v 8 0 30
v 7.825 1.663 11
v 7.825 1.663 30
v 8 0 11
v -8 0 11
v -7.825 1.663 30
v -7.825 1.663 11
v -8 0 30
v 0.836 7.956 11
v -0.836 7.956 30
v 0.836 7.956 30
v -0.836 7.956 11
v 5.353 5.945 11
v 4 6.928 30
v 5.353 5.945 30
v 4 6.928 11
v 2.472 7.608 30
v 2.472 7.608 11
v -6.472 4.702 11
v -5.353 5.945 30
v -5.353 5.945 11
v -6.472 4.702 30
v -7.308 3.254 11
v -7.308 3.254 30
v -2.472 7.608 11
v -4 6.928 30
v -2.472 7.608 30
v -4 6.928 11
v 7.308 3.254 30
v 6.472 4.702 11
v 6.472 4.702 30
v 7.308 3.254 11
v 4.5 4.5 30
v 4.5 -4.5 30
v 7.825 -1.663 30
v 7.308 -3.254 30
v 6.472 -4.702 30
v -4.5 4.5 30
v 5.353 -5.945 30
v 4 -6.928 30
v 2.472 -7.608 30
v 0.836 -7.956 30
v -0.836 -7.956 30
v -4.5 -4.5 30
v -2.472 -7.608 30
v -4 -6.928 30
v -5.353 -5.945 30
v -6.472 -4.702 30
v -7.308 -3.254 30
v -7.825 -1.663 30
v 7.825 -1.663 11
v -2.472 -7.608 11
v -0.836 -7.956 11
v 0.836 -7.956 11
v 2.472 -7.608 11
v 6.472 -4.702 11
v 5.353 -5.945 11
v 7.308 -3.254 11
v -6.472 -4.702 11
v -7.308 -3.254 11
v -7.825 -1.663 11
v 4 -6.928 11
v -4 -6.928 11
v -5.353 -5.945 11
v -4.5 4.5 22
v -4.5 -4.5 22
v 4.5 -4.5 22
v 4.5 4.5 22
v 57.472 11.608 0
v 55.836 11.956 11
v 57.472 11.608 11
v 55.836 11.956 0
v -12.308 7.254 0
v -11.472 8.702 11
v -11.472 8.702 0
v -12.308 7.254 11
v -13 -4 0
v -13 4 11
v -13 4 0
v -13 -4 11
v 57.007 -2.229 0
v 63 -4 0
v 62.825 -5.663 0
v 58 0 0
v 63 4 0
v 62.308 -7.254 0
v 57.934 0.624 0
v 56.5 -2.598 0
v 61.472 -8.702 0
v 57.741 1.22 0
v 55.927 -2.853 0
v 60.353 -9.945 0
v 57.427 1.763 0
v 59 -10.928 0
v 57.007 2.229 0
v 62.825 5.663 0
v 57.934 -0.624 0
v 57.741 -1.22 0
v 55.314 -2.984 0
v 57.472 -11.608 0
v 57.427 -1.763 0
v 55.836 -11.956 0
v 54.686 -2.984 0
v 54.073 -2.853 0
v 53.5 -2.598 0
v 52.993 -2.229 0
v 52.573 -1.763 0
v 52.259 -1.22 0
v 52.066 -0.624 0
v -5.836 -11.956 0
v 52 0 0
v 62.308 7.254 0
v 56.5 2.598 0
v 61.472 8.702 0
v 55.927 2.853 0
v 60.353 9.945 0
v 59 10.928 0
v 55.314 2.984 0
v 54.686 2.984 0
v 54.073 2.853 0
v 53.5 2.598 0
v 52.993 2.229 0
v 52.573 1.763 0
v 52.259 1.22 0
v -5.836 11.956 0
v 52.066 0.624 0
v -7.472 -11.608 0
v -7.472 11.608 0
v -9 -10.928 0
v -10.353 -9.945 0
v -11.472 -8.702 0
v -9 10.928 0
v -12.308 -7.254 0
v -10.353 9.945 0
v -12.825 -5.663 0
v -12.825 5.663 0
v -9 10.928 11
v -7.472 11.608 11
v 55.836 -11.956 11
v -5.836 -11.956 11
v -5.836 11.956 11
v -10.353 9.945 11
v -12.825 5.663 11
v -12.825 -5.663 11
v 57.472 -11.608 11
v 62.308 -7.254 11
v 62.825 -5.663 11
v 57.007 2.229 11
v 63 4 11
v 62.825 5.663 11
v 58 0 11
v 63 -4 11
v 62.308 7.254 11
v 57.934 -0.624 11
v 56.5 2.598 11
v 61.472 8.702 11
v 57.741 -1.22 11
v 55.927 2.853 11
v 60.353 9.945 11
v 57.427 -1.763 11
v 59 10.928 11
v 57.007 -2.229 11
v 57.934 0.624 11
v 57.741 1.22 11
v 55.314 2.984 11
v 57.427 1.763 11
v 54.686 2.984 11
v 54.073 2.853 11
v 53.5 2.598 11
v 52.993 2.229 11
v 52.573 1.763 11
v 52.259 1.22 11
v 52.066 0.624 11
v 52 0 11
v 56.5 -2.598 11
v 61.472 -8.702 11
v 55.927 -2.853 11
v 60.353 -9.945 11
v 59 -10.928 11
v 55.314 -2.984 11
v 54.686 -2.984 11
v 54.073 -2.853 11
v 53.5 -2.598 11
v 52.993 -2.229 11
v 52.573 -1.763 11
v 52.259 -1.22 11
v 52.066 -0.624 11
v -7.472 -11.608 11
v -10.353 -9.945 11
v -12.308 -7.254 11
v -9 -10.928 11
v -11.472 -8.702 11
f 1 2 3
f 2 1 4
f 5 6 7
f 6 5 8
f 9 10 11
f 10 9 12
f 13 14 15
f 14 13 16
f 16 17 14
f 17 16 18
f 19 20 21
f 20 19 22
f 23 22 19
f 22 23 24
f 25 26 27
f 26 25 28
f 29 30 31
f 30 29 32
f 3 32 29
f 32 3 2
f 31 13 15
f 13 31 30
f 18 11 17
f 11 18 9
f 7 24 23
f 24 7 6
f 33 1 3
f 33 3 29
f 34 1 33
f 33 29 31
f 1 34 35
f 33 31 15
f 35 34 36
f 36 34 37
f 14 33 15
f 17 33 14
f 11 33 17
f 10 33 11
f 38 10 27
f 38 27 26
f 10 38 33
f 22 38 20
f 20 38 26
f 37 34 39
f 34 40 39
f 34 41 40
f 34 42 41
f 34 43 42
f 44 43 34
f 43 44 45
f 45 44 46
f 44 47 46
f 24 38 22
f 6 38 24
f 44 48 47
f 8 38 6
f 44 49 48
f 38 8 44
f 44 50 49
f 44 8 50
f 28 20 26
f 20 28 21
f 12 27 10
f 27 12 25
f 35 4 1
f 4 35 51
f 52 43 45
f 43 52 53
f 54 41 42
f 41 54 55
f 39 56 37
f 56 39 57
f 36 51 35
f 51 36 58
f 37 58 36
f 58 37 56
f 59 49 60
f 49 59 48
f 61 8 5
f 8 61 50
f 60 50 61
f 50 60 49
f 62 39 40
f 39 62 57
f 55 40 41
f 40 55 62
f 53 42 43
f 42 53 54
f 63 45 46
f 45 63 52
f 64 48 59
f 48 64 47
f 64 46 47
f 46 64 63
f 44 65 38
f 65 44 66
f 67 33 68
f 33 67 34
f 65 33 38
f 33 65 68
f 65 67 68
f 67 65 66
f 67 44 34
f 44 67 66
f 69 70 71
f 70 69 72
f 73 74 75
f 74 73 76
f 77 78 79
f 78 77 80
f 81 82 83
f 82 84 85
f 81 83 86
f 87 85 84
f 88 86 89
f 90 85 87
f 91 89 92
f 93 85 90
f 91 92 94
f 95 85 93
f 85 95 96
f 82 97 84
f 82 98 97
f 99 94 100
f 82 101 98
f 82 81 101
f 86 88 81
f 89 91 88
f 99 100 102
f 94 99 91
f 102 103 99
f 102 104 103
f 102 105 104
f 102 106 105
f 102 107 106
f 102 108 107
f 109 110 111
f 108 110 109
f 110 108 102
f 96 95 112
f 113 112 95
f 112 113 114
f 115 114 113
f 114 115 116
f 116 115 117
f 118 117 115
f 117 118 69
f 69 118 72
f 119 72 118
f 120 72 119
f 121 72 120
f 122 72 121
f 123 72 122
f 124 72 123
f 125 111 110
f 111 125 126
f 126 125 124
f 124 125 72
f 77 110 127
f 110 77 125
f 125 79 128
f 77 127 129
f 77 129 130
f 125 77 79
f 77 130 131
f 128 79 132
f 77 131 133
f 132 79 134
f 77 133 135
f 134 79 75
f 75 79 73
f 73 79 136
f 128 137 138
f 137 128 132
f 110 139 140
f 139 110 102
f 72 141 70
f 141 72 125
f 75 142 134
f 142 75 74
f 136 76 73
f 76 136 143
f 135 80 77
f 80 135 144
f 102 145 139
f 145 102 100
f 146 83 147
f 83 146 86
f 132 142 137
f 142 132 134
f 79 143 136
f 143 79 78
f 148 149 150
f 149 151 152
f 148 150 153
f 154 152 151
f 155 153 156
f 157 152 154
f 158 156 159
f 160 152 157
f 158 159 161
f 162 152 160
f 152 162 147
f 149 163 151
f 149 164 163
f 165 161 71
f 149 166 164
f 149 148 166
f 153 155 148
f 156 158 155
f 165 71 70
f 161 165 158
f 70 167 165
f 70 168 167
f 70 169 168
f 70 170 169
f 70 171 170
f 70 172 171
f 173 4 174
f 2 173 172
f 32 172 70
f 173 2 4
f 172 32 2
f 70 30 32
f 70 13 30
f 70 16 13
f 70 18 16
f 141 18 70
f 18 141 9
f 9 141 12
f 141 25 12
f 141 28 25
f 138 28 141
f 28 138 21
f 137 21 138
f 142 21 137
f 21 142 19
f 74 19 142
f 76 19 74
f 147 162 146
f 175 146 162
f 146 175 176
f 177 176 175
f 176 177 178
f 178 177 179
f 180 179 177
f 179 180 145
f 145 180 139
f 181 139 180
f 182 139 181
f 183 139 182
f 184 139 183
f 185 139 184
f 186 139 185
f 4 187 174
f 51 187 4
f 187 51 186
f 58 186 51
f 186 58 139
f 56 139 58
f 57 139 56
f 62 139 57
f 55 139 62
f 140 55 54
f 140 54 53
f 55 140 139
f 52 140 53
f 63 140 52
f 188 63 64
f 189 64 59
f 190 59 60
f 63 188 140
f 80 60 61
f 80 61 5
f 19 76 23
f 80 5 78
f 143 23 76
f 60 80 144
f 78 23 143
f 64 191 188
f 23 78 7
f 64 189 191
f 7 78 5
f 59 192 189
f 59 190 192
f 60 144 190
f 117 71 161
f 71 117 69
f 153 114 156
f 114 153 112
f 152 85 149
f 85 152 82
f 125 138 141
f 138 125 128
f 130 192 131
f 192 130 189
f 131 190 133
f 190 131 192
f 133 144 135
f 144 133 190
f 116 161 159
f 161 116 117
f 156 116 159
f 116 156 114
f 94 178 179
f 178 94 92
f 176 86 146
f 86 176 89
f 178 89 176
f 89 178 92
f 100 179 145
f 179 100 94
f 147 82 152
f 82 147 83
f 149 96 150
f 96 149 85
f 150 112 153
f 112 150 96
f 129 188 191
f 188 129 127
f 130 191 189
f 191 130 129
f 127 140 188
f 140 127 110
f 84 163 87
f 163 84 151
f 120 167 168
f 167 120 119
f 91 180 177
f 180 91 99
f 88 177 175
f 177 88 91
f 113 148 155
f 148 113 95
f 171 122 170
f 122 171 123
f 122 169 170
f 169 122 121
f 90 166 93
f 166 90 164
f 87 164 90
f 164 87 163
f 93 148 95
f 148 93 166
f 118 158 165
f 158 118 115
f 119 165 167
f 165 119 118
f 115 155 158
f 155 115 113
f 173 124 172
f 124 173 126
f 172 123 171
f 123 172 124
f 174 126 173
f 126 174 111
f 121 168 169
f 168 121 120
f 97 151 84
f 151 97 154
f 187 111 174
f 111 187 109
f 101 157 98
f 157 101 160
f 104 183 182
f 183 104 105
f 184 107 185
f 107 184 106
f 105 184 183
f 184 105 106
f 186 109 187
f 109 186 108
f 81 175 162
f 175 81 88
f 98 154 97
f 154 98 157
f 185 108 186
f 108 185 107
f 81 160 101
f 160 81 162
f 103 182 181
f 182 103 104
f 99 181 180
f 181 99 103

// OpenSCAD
$fn = 30;

velikost = 9;
prumer = 16;

translate([0, 0, 10]) difference() {
    translate([0, 0, 0]) cylinder(r=prumer/2, h=20);
    translate([-velikost/2, -velikost/2, 12]) cube([velikost, velikost, 8]);
}
difference() {
    minkowski() {
        translate([25, 0, 5]) cube([60, prumer/2, 10], center=true);
        translate([0, 0, 0]) rotate([0, 0, 0]) cylinder(r=prumer/2, h=1);
    }
    #translate([55, 0, 5]) cylinder(r=3, h=20, center=true);
}
